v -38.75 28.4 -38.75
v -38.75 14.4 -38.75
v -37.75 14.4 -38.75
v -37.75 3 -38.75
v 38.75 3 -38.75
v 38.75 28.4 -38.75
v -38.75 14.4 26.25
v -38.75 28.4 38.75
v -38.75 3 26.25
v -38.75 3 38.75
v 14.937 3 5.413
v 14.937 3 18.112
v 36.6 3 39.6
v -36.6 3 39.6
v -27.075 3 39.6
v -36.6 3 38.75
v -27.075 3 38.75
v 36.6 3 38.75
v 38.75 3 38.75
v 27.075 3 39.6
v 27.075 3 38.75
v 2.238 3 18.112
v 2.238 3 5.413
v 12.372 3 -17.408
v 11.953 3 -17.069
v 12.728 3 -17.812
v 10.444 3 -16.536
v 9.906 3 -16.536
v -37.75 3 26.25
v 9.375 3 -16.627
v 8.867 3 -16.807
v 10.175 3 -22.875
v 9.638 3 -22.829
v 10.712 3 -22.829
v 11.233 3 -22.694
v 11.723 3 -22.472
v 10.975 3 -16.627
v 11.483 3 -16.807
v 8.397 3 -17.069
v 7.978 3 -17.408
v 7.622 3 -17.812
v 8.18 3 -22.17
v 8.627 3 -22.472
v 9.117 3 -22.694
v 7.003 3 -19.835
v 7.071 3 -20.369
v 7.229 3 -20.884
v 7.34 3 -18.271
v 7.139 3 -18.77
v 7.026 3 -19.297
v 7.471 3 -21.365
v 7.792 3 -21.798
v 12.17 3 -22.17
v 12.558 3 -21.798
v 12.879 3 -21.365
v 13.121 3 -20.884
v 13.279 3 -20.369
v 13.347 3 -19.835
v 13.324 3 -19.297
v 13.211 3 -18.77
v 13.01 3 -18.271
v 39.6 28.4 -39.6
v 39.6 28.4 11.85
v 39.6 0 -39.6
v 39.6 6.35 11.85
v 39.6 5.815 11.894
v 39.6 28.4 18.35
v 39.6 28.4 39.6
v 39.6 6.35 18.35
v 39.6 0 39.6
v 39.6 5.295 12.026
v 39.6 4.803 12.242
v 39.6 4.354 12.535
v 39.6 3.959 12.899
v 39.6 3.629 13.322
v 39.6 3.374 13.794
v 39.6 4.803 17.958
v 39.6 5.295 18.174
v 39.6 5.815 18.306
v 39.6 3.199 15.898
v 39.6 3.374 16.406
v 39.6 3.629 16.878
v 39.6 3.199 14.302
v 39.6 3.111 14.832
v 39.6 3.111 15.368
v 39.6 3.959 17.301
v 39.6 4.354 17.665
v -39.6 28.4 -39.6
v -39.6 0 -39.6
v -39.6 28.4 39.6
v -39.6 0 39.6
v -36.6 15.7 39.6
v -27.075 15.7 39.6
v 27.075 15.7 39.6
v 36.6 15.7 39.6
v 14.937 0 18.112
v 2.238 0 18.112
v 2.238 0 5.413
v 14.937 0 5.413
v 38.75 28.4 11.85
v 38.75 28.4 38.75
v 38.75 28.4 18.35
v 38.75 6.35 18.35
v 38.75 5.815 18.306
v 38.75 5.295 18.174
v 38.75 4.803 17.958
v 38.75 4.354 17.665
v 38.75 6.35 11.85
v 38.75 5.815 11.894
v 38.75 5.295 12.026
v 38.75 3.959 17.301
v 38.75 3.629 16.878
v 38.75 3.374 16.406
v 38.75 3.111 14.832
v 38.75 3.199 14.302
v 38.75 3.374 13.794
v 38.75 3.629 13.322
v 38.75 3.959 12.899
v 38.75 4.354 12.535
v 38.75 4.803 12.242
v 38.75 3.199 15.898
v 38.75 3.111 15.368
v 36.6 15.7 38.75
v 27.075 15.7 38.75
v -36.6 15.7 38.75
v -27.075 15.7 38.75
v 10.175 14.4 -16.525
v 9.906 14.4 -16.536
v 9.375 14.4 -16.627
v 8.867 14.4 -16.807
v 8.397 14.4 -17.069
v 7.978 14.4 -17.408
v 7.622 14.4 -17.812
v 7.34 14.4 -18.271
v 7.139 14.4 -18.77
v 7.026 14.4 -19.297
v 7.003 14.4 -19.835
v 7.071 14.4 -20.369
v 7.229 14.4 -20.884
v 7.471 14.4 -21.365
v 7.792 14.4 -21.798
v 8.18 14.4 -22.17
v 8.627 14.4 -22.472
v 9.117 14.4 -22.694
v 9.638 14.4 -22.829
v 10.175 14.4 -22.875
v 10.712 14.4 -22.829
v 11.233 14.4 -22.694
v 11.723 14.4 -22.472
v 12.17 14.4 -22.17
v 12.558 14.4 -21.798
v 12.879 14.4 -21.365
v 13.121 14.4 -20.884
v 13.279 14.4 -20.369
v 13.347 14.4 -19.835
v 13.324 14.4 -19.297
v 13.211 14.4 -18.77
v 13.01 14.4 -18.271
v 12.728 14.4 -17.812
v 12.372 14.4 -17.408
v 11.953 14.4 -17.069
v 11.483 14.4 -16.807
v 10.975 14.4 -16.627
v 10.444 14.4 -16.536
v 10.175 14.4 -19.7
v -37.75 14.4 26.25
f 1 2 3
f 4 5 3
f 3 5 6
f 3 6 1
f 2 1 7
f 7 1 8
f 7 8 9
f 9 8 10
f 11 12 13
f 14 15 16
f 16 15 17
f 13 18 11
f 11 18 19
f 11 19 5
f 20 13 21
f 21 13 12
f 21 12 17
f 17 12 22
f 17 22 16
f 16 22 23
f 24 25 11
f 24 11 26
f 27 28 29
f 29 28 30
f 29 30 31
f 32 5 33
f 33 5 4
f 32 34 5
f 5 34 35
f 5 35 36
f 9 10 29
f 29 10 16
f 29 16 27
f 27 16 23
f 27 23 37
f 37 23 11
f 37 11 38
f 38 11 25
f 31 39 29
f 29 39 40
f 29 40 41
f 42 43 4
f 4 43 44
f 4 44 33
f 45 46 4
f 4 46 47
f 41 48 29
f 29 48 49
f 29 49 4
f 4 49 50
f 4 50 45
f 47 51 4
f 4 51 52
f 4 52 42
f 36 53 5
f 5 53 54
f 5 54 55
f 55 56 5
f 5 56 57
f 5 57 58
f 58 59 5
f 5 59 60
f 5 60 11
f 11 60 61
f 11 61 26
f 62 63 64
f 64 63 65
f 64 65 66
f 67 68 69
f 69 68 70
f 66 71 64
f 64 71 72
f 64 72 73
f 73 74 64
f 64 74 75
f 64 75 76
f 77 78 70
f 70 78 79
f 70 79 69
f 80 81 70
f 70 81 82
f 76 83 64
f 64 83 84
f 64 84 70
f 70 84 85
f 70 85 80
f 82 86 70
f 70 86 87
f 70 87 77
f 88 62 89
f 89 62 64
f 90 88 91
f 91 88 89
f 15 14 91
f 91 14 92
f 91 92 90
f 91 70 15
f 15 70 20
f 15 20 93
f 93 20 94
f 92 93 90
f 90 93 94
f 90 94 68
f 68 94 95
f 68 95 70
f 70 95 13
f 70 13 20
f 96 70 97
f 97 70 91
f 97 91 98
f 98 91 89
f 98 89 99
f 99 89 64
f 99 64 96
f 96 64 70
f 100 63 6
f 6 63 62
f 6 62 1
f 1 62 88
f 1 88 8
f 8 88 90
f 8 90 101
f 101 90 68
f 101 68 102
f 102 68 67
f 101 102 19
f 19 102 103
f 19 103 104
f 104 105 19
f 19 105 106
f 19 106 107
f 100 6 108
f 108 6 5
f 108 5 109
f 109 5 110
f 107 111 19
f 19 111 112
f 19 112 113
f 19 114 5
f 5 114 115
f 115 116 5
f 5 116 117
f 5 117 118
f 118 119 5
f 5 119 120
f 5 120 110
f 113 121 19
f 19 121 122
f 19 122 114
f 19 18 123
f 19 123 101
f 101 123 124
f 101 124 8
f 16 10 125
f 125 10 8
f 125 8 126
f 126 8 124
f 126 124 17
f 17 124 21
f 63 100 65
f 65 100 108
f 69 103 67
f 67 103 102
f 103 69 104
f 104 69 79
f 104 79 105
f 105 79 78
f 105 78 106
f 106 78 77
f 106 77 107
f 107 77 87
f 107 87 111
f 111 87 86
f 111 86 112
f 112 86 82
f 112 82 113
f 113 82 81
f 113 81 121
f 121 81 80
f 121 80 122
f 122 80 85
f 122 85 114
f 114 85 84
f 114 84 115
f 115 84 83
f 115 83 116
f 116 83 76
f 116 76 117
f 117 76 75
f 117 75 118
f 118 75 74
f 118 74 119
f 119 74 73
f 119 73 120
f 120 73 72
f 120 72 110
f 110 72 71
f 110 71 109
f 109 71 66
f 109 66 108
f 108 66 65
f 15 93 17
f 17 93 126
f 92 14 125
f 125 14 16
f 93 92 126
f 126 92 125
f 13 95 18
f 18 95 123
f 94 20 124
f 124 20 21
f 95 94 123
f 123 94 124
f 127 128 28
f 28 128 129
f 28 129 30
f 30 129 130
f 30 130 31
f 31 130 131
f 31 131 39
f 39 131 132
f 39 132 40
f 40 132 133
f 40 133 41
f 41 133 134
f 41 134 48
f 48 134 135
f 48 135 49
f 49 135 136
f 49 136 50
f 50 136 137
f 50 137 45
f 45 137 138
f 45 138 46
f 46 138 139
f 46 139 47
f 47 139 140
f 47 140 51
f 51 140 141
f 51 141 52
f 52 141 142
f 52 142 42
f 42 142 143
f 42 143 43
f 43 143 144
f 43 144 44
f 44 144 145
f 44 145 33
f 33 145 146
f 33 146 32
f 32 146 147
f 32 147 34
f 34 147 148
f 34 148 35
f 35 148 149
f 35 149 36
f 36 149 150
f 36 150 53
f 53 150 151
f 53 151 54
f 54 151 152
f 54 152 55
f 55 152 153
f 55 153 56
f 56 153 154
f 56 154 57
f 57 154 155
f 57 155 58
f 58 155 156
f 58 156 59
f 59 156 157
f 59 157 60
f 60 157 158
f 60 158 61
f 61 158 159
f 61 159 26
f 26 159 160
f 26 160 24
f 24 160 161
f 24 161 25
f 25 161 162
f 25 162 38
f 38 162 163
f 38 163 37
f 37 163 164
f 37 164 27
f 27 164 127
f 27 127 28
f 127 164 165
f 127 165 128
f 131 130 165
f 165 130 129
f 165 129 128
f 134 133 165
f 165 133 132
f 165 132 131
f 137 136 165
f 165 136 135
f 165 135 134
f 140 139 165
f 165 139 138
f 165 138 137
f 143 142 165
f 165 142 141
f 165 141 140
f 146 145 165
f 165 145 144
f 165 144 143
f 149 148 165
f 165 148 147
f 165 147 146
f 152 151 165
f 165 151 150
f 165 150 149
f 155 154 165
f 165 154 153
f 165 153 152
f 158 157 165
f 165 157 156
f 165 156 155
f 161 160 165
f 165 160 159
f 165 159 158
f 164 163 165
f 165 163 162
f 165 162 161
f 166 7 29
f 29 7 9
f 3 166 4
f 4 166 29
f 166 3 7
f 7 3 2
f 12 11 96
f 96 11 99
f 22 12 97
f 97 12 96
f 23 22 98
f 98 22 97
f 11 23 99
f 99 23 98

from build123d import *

# Parameters (mm, degrees)
SKETCH1_W           = 79.2
SKETCH1_H           = 79.2
BOSS_EXTRUDE1_DEPTH = 3
SKETCH2_W           = 79.2
SKETCH2_H           = 79.2
SKETCH2_W_2         = 77.5
SKETCH2_H_2         = 77.5
BOSS_EXTRUDE2_DEPTH = 25.4
SKETCH3_R           = 3.25
CUT_EXTRUDE2_DEPTH  = 0.85
SKETCH5_W           = 9.525
SKETCH5_H           = 12.7
CUT_EXTRUDE3_DEPTH  = 19.05
SKETCH6_R           = 3.175
SKETCH6_W           = 1
SKETCH6_H           = 65
BOSS_EXTRUDE3_DEPTH = 11.4
SKETCH7_W           = 12.7
SKETCH7_H           = 12.7
CUT_EXTRUDE5_DEPTH  = 26


with BuildPart() as part:
    # Sketch1 → Boss-Extrude1 (new body)
    with BuildSketch(Plane(origin=(0, 0, 0), x_dir=(1, 0, 0), z_dir=(0, 1, 0))):
        Rectangle(SKETCH1_W, SKETCH1_H)
    extrude(amount=BOSS_EXTRUDE1_DEPTH)

    # Sketch2 → Boss-Extrude2 (add)
    with BuildSketch(Plane(origin=(0, 3, 0), x_dir=(1, 0, 0), z_dir=(0, 1, 0))):
        Rectangle(SKETCH2_W, SKETCH2_H)
        Rectangle(SKETCH2_W_2, SKETCH2_H_2, mode=Mode.SUBTRACT)
    extrude(amount=BOSS_EXTRUDE2_DEPTH)

    # Sketch3 → Cut-Extrude2 (cut)
    with BuildSketch(Plane(origin=(39.6, 0, 0), x_dir=(0, 0, -1), z_dir=(1, 0, 0))):
        with Locations((-15.1, 6.35)):
            Circle(SKETCH3_R)
        with BuildLine():
            ThreePointArc((-18.35, 6.35), (-15.1, 9.6), (-11.85, 6.35))
            Line((-11.85, 6.35), (-11.85, 28.4))
            Line((-11.85, 28.4), (-18.35, 28.4))
            Line((-18.35, 28.4), (-18.35, 6.35))
        make_face()
    extrude(amount=-CUT_EXTRUDE2_DEPTH, mode=Mode.SUBTRACT)

    # Sketch5 → Cut-Extrude3 (cut)
    with BuildSketch(Plane.XY.offset(39.6)):
        with Locations((31.8375, 9.35)):
            Rectangle(SKETCH5_W, SKETCH5_H)
        with Locations((-31.8375, 9.35)):
            Rectangle(SKETCH5_W, SKETCH5_H)
    extrude(amount=-CUT_EXTRUDE3_DEPTH, mode=Mode.SUBTRACT)

    # Sketch6 → Boss-Extrude3 (add)
    with BuildSketch(Plane(origin=(0, 3, 0), x_dir=(1, 0, 0), z_dir=(0, 1, 0))):
        with Locations(Location((10.175, 19.7, 0), (0, 0, 90))):
            Circle(SKETCH6_R)
        with Locations((-38.25, 6.25)):
            Rectangle(SKETCH6_W, SKETCH6_H)
    extrude(amount=BOSS_EXTRUDE3_DEPTH)

    # Sketch7 → Cut-Extrude5 (cut)
    with BuildSketch(Plane(origin=(0, 3, 0), x_dir=(1, 0, 0), z_dir=(0, 1, 0))):
        with Locations((8.5875, -11.7625)):
            Rectangle(SKETCH7_W, SKETCH7_H)
    extrude(amount=-CUT_EXTRUDE5_DEPTH, mode=Mode.SUBTRACT)


solid = part.part
